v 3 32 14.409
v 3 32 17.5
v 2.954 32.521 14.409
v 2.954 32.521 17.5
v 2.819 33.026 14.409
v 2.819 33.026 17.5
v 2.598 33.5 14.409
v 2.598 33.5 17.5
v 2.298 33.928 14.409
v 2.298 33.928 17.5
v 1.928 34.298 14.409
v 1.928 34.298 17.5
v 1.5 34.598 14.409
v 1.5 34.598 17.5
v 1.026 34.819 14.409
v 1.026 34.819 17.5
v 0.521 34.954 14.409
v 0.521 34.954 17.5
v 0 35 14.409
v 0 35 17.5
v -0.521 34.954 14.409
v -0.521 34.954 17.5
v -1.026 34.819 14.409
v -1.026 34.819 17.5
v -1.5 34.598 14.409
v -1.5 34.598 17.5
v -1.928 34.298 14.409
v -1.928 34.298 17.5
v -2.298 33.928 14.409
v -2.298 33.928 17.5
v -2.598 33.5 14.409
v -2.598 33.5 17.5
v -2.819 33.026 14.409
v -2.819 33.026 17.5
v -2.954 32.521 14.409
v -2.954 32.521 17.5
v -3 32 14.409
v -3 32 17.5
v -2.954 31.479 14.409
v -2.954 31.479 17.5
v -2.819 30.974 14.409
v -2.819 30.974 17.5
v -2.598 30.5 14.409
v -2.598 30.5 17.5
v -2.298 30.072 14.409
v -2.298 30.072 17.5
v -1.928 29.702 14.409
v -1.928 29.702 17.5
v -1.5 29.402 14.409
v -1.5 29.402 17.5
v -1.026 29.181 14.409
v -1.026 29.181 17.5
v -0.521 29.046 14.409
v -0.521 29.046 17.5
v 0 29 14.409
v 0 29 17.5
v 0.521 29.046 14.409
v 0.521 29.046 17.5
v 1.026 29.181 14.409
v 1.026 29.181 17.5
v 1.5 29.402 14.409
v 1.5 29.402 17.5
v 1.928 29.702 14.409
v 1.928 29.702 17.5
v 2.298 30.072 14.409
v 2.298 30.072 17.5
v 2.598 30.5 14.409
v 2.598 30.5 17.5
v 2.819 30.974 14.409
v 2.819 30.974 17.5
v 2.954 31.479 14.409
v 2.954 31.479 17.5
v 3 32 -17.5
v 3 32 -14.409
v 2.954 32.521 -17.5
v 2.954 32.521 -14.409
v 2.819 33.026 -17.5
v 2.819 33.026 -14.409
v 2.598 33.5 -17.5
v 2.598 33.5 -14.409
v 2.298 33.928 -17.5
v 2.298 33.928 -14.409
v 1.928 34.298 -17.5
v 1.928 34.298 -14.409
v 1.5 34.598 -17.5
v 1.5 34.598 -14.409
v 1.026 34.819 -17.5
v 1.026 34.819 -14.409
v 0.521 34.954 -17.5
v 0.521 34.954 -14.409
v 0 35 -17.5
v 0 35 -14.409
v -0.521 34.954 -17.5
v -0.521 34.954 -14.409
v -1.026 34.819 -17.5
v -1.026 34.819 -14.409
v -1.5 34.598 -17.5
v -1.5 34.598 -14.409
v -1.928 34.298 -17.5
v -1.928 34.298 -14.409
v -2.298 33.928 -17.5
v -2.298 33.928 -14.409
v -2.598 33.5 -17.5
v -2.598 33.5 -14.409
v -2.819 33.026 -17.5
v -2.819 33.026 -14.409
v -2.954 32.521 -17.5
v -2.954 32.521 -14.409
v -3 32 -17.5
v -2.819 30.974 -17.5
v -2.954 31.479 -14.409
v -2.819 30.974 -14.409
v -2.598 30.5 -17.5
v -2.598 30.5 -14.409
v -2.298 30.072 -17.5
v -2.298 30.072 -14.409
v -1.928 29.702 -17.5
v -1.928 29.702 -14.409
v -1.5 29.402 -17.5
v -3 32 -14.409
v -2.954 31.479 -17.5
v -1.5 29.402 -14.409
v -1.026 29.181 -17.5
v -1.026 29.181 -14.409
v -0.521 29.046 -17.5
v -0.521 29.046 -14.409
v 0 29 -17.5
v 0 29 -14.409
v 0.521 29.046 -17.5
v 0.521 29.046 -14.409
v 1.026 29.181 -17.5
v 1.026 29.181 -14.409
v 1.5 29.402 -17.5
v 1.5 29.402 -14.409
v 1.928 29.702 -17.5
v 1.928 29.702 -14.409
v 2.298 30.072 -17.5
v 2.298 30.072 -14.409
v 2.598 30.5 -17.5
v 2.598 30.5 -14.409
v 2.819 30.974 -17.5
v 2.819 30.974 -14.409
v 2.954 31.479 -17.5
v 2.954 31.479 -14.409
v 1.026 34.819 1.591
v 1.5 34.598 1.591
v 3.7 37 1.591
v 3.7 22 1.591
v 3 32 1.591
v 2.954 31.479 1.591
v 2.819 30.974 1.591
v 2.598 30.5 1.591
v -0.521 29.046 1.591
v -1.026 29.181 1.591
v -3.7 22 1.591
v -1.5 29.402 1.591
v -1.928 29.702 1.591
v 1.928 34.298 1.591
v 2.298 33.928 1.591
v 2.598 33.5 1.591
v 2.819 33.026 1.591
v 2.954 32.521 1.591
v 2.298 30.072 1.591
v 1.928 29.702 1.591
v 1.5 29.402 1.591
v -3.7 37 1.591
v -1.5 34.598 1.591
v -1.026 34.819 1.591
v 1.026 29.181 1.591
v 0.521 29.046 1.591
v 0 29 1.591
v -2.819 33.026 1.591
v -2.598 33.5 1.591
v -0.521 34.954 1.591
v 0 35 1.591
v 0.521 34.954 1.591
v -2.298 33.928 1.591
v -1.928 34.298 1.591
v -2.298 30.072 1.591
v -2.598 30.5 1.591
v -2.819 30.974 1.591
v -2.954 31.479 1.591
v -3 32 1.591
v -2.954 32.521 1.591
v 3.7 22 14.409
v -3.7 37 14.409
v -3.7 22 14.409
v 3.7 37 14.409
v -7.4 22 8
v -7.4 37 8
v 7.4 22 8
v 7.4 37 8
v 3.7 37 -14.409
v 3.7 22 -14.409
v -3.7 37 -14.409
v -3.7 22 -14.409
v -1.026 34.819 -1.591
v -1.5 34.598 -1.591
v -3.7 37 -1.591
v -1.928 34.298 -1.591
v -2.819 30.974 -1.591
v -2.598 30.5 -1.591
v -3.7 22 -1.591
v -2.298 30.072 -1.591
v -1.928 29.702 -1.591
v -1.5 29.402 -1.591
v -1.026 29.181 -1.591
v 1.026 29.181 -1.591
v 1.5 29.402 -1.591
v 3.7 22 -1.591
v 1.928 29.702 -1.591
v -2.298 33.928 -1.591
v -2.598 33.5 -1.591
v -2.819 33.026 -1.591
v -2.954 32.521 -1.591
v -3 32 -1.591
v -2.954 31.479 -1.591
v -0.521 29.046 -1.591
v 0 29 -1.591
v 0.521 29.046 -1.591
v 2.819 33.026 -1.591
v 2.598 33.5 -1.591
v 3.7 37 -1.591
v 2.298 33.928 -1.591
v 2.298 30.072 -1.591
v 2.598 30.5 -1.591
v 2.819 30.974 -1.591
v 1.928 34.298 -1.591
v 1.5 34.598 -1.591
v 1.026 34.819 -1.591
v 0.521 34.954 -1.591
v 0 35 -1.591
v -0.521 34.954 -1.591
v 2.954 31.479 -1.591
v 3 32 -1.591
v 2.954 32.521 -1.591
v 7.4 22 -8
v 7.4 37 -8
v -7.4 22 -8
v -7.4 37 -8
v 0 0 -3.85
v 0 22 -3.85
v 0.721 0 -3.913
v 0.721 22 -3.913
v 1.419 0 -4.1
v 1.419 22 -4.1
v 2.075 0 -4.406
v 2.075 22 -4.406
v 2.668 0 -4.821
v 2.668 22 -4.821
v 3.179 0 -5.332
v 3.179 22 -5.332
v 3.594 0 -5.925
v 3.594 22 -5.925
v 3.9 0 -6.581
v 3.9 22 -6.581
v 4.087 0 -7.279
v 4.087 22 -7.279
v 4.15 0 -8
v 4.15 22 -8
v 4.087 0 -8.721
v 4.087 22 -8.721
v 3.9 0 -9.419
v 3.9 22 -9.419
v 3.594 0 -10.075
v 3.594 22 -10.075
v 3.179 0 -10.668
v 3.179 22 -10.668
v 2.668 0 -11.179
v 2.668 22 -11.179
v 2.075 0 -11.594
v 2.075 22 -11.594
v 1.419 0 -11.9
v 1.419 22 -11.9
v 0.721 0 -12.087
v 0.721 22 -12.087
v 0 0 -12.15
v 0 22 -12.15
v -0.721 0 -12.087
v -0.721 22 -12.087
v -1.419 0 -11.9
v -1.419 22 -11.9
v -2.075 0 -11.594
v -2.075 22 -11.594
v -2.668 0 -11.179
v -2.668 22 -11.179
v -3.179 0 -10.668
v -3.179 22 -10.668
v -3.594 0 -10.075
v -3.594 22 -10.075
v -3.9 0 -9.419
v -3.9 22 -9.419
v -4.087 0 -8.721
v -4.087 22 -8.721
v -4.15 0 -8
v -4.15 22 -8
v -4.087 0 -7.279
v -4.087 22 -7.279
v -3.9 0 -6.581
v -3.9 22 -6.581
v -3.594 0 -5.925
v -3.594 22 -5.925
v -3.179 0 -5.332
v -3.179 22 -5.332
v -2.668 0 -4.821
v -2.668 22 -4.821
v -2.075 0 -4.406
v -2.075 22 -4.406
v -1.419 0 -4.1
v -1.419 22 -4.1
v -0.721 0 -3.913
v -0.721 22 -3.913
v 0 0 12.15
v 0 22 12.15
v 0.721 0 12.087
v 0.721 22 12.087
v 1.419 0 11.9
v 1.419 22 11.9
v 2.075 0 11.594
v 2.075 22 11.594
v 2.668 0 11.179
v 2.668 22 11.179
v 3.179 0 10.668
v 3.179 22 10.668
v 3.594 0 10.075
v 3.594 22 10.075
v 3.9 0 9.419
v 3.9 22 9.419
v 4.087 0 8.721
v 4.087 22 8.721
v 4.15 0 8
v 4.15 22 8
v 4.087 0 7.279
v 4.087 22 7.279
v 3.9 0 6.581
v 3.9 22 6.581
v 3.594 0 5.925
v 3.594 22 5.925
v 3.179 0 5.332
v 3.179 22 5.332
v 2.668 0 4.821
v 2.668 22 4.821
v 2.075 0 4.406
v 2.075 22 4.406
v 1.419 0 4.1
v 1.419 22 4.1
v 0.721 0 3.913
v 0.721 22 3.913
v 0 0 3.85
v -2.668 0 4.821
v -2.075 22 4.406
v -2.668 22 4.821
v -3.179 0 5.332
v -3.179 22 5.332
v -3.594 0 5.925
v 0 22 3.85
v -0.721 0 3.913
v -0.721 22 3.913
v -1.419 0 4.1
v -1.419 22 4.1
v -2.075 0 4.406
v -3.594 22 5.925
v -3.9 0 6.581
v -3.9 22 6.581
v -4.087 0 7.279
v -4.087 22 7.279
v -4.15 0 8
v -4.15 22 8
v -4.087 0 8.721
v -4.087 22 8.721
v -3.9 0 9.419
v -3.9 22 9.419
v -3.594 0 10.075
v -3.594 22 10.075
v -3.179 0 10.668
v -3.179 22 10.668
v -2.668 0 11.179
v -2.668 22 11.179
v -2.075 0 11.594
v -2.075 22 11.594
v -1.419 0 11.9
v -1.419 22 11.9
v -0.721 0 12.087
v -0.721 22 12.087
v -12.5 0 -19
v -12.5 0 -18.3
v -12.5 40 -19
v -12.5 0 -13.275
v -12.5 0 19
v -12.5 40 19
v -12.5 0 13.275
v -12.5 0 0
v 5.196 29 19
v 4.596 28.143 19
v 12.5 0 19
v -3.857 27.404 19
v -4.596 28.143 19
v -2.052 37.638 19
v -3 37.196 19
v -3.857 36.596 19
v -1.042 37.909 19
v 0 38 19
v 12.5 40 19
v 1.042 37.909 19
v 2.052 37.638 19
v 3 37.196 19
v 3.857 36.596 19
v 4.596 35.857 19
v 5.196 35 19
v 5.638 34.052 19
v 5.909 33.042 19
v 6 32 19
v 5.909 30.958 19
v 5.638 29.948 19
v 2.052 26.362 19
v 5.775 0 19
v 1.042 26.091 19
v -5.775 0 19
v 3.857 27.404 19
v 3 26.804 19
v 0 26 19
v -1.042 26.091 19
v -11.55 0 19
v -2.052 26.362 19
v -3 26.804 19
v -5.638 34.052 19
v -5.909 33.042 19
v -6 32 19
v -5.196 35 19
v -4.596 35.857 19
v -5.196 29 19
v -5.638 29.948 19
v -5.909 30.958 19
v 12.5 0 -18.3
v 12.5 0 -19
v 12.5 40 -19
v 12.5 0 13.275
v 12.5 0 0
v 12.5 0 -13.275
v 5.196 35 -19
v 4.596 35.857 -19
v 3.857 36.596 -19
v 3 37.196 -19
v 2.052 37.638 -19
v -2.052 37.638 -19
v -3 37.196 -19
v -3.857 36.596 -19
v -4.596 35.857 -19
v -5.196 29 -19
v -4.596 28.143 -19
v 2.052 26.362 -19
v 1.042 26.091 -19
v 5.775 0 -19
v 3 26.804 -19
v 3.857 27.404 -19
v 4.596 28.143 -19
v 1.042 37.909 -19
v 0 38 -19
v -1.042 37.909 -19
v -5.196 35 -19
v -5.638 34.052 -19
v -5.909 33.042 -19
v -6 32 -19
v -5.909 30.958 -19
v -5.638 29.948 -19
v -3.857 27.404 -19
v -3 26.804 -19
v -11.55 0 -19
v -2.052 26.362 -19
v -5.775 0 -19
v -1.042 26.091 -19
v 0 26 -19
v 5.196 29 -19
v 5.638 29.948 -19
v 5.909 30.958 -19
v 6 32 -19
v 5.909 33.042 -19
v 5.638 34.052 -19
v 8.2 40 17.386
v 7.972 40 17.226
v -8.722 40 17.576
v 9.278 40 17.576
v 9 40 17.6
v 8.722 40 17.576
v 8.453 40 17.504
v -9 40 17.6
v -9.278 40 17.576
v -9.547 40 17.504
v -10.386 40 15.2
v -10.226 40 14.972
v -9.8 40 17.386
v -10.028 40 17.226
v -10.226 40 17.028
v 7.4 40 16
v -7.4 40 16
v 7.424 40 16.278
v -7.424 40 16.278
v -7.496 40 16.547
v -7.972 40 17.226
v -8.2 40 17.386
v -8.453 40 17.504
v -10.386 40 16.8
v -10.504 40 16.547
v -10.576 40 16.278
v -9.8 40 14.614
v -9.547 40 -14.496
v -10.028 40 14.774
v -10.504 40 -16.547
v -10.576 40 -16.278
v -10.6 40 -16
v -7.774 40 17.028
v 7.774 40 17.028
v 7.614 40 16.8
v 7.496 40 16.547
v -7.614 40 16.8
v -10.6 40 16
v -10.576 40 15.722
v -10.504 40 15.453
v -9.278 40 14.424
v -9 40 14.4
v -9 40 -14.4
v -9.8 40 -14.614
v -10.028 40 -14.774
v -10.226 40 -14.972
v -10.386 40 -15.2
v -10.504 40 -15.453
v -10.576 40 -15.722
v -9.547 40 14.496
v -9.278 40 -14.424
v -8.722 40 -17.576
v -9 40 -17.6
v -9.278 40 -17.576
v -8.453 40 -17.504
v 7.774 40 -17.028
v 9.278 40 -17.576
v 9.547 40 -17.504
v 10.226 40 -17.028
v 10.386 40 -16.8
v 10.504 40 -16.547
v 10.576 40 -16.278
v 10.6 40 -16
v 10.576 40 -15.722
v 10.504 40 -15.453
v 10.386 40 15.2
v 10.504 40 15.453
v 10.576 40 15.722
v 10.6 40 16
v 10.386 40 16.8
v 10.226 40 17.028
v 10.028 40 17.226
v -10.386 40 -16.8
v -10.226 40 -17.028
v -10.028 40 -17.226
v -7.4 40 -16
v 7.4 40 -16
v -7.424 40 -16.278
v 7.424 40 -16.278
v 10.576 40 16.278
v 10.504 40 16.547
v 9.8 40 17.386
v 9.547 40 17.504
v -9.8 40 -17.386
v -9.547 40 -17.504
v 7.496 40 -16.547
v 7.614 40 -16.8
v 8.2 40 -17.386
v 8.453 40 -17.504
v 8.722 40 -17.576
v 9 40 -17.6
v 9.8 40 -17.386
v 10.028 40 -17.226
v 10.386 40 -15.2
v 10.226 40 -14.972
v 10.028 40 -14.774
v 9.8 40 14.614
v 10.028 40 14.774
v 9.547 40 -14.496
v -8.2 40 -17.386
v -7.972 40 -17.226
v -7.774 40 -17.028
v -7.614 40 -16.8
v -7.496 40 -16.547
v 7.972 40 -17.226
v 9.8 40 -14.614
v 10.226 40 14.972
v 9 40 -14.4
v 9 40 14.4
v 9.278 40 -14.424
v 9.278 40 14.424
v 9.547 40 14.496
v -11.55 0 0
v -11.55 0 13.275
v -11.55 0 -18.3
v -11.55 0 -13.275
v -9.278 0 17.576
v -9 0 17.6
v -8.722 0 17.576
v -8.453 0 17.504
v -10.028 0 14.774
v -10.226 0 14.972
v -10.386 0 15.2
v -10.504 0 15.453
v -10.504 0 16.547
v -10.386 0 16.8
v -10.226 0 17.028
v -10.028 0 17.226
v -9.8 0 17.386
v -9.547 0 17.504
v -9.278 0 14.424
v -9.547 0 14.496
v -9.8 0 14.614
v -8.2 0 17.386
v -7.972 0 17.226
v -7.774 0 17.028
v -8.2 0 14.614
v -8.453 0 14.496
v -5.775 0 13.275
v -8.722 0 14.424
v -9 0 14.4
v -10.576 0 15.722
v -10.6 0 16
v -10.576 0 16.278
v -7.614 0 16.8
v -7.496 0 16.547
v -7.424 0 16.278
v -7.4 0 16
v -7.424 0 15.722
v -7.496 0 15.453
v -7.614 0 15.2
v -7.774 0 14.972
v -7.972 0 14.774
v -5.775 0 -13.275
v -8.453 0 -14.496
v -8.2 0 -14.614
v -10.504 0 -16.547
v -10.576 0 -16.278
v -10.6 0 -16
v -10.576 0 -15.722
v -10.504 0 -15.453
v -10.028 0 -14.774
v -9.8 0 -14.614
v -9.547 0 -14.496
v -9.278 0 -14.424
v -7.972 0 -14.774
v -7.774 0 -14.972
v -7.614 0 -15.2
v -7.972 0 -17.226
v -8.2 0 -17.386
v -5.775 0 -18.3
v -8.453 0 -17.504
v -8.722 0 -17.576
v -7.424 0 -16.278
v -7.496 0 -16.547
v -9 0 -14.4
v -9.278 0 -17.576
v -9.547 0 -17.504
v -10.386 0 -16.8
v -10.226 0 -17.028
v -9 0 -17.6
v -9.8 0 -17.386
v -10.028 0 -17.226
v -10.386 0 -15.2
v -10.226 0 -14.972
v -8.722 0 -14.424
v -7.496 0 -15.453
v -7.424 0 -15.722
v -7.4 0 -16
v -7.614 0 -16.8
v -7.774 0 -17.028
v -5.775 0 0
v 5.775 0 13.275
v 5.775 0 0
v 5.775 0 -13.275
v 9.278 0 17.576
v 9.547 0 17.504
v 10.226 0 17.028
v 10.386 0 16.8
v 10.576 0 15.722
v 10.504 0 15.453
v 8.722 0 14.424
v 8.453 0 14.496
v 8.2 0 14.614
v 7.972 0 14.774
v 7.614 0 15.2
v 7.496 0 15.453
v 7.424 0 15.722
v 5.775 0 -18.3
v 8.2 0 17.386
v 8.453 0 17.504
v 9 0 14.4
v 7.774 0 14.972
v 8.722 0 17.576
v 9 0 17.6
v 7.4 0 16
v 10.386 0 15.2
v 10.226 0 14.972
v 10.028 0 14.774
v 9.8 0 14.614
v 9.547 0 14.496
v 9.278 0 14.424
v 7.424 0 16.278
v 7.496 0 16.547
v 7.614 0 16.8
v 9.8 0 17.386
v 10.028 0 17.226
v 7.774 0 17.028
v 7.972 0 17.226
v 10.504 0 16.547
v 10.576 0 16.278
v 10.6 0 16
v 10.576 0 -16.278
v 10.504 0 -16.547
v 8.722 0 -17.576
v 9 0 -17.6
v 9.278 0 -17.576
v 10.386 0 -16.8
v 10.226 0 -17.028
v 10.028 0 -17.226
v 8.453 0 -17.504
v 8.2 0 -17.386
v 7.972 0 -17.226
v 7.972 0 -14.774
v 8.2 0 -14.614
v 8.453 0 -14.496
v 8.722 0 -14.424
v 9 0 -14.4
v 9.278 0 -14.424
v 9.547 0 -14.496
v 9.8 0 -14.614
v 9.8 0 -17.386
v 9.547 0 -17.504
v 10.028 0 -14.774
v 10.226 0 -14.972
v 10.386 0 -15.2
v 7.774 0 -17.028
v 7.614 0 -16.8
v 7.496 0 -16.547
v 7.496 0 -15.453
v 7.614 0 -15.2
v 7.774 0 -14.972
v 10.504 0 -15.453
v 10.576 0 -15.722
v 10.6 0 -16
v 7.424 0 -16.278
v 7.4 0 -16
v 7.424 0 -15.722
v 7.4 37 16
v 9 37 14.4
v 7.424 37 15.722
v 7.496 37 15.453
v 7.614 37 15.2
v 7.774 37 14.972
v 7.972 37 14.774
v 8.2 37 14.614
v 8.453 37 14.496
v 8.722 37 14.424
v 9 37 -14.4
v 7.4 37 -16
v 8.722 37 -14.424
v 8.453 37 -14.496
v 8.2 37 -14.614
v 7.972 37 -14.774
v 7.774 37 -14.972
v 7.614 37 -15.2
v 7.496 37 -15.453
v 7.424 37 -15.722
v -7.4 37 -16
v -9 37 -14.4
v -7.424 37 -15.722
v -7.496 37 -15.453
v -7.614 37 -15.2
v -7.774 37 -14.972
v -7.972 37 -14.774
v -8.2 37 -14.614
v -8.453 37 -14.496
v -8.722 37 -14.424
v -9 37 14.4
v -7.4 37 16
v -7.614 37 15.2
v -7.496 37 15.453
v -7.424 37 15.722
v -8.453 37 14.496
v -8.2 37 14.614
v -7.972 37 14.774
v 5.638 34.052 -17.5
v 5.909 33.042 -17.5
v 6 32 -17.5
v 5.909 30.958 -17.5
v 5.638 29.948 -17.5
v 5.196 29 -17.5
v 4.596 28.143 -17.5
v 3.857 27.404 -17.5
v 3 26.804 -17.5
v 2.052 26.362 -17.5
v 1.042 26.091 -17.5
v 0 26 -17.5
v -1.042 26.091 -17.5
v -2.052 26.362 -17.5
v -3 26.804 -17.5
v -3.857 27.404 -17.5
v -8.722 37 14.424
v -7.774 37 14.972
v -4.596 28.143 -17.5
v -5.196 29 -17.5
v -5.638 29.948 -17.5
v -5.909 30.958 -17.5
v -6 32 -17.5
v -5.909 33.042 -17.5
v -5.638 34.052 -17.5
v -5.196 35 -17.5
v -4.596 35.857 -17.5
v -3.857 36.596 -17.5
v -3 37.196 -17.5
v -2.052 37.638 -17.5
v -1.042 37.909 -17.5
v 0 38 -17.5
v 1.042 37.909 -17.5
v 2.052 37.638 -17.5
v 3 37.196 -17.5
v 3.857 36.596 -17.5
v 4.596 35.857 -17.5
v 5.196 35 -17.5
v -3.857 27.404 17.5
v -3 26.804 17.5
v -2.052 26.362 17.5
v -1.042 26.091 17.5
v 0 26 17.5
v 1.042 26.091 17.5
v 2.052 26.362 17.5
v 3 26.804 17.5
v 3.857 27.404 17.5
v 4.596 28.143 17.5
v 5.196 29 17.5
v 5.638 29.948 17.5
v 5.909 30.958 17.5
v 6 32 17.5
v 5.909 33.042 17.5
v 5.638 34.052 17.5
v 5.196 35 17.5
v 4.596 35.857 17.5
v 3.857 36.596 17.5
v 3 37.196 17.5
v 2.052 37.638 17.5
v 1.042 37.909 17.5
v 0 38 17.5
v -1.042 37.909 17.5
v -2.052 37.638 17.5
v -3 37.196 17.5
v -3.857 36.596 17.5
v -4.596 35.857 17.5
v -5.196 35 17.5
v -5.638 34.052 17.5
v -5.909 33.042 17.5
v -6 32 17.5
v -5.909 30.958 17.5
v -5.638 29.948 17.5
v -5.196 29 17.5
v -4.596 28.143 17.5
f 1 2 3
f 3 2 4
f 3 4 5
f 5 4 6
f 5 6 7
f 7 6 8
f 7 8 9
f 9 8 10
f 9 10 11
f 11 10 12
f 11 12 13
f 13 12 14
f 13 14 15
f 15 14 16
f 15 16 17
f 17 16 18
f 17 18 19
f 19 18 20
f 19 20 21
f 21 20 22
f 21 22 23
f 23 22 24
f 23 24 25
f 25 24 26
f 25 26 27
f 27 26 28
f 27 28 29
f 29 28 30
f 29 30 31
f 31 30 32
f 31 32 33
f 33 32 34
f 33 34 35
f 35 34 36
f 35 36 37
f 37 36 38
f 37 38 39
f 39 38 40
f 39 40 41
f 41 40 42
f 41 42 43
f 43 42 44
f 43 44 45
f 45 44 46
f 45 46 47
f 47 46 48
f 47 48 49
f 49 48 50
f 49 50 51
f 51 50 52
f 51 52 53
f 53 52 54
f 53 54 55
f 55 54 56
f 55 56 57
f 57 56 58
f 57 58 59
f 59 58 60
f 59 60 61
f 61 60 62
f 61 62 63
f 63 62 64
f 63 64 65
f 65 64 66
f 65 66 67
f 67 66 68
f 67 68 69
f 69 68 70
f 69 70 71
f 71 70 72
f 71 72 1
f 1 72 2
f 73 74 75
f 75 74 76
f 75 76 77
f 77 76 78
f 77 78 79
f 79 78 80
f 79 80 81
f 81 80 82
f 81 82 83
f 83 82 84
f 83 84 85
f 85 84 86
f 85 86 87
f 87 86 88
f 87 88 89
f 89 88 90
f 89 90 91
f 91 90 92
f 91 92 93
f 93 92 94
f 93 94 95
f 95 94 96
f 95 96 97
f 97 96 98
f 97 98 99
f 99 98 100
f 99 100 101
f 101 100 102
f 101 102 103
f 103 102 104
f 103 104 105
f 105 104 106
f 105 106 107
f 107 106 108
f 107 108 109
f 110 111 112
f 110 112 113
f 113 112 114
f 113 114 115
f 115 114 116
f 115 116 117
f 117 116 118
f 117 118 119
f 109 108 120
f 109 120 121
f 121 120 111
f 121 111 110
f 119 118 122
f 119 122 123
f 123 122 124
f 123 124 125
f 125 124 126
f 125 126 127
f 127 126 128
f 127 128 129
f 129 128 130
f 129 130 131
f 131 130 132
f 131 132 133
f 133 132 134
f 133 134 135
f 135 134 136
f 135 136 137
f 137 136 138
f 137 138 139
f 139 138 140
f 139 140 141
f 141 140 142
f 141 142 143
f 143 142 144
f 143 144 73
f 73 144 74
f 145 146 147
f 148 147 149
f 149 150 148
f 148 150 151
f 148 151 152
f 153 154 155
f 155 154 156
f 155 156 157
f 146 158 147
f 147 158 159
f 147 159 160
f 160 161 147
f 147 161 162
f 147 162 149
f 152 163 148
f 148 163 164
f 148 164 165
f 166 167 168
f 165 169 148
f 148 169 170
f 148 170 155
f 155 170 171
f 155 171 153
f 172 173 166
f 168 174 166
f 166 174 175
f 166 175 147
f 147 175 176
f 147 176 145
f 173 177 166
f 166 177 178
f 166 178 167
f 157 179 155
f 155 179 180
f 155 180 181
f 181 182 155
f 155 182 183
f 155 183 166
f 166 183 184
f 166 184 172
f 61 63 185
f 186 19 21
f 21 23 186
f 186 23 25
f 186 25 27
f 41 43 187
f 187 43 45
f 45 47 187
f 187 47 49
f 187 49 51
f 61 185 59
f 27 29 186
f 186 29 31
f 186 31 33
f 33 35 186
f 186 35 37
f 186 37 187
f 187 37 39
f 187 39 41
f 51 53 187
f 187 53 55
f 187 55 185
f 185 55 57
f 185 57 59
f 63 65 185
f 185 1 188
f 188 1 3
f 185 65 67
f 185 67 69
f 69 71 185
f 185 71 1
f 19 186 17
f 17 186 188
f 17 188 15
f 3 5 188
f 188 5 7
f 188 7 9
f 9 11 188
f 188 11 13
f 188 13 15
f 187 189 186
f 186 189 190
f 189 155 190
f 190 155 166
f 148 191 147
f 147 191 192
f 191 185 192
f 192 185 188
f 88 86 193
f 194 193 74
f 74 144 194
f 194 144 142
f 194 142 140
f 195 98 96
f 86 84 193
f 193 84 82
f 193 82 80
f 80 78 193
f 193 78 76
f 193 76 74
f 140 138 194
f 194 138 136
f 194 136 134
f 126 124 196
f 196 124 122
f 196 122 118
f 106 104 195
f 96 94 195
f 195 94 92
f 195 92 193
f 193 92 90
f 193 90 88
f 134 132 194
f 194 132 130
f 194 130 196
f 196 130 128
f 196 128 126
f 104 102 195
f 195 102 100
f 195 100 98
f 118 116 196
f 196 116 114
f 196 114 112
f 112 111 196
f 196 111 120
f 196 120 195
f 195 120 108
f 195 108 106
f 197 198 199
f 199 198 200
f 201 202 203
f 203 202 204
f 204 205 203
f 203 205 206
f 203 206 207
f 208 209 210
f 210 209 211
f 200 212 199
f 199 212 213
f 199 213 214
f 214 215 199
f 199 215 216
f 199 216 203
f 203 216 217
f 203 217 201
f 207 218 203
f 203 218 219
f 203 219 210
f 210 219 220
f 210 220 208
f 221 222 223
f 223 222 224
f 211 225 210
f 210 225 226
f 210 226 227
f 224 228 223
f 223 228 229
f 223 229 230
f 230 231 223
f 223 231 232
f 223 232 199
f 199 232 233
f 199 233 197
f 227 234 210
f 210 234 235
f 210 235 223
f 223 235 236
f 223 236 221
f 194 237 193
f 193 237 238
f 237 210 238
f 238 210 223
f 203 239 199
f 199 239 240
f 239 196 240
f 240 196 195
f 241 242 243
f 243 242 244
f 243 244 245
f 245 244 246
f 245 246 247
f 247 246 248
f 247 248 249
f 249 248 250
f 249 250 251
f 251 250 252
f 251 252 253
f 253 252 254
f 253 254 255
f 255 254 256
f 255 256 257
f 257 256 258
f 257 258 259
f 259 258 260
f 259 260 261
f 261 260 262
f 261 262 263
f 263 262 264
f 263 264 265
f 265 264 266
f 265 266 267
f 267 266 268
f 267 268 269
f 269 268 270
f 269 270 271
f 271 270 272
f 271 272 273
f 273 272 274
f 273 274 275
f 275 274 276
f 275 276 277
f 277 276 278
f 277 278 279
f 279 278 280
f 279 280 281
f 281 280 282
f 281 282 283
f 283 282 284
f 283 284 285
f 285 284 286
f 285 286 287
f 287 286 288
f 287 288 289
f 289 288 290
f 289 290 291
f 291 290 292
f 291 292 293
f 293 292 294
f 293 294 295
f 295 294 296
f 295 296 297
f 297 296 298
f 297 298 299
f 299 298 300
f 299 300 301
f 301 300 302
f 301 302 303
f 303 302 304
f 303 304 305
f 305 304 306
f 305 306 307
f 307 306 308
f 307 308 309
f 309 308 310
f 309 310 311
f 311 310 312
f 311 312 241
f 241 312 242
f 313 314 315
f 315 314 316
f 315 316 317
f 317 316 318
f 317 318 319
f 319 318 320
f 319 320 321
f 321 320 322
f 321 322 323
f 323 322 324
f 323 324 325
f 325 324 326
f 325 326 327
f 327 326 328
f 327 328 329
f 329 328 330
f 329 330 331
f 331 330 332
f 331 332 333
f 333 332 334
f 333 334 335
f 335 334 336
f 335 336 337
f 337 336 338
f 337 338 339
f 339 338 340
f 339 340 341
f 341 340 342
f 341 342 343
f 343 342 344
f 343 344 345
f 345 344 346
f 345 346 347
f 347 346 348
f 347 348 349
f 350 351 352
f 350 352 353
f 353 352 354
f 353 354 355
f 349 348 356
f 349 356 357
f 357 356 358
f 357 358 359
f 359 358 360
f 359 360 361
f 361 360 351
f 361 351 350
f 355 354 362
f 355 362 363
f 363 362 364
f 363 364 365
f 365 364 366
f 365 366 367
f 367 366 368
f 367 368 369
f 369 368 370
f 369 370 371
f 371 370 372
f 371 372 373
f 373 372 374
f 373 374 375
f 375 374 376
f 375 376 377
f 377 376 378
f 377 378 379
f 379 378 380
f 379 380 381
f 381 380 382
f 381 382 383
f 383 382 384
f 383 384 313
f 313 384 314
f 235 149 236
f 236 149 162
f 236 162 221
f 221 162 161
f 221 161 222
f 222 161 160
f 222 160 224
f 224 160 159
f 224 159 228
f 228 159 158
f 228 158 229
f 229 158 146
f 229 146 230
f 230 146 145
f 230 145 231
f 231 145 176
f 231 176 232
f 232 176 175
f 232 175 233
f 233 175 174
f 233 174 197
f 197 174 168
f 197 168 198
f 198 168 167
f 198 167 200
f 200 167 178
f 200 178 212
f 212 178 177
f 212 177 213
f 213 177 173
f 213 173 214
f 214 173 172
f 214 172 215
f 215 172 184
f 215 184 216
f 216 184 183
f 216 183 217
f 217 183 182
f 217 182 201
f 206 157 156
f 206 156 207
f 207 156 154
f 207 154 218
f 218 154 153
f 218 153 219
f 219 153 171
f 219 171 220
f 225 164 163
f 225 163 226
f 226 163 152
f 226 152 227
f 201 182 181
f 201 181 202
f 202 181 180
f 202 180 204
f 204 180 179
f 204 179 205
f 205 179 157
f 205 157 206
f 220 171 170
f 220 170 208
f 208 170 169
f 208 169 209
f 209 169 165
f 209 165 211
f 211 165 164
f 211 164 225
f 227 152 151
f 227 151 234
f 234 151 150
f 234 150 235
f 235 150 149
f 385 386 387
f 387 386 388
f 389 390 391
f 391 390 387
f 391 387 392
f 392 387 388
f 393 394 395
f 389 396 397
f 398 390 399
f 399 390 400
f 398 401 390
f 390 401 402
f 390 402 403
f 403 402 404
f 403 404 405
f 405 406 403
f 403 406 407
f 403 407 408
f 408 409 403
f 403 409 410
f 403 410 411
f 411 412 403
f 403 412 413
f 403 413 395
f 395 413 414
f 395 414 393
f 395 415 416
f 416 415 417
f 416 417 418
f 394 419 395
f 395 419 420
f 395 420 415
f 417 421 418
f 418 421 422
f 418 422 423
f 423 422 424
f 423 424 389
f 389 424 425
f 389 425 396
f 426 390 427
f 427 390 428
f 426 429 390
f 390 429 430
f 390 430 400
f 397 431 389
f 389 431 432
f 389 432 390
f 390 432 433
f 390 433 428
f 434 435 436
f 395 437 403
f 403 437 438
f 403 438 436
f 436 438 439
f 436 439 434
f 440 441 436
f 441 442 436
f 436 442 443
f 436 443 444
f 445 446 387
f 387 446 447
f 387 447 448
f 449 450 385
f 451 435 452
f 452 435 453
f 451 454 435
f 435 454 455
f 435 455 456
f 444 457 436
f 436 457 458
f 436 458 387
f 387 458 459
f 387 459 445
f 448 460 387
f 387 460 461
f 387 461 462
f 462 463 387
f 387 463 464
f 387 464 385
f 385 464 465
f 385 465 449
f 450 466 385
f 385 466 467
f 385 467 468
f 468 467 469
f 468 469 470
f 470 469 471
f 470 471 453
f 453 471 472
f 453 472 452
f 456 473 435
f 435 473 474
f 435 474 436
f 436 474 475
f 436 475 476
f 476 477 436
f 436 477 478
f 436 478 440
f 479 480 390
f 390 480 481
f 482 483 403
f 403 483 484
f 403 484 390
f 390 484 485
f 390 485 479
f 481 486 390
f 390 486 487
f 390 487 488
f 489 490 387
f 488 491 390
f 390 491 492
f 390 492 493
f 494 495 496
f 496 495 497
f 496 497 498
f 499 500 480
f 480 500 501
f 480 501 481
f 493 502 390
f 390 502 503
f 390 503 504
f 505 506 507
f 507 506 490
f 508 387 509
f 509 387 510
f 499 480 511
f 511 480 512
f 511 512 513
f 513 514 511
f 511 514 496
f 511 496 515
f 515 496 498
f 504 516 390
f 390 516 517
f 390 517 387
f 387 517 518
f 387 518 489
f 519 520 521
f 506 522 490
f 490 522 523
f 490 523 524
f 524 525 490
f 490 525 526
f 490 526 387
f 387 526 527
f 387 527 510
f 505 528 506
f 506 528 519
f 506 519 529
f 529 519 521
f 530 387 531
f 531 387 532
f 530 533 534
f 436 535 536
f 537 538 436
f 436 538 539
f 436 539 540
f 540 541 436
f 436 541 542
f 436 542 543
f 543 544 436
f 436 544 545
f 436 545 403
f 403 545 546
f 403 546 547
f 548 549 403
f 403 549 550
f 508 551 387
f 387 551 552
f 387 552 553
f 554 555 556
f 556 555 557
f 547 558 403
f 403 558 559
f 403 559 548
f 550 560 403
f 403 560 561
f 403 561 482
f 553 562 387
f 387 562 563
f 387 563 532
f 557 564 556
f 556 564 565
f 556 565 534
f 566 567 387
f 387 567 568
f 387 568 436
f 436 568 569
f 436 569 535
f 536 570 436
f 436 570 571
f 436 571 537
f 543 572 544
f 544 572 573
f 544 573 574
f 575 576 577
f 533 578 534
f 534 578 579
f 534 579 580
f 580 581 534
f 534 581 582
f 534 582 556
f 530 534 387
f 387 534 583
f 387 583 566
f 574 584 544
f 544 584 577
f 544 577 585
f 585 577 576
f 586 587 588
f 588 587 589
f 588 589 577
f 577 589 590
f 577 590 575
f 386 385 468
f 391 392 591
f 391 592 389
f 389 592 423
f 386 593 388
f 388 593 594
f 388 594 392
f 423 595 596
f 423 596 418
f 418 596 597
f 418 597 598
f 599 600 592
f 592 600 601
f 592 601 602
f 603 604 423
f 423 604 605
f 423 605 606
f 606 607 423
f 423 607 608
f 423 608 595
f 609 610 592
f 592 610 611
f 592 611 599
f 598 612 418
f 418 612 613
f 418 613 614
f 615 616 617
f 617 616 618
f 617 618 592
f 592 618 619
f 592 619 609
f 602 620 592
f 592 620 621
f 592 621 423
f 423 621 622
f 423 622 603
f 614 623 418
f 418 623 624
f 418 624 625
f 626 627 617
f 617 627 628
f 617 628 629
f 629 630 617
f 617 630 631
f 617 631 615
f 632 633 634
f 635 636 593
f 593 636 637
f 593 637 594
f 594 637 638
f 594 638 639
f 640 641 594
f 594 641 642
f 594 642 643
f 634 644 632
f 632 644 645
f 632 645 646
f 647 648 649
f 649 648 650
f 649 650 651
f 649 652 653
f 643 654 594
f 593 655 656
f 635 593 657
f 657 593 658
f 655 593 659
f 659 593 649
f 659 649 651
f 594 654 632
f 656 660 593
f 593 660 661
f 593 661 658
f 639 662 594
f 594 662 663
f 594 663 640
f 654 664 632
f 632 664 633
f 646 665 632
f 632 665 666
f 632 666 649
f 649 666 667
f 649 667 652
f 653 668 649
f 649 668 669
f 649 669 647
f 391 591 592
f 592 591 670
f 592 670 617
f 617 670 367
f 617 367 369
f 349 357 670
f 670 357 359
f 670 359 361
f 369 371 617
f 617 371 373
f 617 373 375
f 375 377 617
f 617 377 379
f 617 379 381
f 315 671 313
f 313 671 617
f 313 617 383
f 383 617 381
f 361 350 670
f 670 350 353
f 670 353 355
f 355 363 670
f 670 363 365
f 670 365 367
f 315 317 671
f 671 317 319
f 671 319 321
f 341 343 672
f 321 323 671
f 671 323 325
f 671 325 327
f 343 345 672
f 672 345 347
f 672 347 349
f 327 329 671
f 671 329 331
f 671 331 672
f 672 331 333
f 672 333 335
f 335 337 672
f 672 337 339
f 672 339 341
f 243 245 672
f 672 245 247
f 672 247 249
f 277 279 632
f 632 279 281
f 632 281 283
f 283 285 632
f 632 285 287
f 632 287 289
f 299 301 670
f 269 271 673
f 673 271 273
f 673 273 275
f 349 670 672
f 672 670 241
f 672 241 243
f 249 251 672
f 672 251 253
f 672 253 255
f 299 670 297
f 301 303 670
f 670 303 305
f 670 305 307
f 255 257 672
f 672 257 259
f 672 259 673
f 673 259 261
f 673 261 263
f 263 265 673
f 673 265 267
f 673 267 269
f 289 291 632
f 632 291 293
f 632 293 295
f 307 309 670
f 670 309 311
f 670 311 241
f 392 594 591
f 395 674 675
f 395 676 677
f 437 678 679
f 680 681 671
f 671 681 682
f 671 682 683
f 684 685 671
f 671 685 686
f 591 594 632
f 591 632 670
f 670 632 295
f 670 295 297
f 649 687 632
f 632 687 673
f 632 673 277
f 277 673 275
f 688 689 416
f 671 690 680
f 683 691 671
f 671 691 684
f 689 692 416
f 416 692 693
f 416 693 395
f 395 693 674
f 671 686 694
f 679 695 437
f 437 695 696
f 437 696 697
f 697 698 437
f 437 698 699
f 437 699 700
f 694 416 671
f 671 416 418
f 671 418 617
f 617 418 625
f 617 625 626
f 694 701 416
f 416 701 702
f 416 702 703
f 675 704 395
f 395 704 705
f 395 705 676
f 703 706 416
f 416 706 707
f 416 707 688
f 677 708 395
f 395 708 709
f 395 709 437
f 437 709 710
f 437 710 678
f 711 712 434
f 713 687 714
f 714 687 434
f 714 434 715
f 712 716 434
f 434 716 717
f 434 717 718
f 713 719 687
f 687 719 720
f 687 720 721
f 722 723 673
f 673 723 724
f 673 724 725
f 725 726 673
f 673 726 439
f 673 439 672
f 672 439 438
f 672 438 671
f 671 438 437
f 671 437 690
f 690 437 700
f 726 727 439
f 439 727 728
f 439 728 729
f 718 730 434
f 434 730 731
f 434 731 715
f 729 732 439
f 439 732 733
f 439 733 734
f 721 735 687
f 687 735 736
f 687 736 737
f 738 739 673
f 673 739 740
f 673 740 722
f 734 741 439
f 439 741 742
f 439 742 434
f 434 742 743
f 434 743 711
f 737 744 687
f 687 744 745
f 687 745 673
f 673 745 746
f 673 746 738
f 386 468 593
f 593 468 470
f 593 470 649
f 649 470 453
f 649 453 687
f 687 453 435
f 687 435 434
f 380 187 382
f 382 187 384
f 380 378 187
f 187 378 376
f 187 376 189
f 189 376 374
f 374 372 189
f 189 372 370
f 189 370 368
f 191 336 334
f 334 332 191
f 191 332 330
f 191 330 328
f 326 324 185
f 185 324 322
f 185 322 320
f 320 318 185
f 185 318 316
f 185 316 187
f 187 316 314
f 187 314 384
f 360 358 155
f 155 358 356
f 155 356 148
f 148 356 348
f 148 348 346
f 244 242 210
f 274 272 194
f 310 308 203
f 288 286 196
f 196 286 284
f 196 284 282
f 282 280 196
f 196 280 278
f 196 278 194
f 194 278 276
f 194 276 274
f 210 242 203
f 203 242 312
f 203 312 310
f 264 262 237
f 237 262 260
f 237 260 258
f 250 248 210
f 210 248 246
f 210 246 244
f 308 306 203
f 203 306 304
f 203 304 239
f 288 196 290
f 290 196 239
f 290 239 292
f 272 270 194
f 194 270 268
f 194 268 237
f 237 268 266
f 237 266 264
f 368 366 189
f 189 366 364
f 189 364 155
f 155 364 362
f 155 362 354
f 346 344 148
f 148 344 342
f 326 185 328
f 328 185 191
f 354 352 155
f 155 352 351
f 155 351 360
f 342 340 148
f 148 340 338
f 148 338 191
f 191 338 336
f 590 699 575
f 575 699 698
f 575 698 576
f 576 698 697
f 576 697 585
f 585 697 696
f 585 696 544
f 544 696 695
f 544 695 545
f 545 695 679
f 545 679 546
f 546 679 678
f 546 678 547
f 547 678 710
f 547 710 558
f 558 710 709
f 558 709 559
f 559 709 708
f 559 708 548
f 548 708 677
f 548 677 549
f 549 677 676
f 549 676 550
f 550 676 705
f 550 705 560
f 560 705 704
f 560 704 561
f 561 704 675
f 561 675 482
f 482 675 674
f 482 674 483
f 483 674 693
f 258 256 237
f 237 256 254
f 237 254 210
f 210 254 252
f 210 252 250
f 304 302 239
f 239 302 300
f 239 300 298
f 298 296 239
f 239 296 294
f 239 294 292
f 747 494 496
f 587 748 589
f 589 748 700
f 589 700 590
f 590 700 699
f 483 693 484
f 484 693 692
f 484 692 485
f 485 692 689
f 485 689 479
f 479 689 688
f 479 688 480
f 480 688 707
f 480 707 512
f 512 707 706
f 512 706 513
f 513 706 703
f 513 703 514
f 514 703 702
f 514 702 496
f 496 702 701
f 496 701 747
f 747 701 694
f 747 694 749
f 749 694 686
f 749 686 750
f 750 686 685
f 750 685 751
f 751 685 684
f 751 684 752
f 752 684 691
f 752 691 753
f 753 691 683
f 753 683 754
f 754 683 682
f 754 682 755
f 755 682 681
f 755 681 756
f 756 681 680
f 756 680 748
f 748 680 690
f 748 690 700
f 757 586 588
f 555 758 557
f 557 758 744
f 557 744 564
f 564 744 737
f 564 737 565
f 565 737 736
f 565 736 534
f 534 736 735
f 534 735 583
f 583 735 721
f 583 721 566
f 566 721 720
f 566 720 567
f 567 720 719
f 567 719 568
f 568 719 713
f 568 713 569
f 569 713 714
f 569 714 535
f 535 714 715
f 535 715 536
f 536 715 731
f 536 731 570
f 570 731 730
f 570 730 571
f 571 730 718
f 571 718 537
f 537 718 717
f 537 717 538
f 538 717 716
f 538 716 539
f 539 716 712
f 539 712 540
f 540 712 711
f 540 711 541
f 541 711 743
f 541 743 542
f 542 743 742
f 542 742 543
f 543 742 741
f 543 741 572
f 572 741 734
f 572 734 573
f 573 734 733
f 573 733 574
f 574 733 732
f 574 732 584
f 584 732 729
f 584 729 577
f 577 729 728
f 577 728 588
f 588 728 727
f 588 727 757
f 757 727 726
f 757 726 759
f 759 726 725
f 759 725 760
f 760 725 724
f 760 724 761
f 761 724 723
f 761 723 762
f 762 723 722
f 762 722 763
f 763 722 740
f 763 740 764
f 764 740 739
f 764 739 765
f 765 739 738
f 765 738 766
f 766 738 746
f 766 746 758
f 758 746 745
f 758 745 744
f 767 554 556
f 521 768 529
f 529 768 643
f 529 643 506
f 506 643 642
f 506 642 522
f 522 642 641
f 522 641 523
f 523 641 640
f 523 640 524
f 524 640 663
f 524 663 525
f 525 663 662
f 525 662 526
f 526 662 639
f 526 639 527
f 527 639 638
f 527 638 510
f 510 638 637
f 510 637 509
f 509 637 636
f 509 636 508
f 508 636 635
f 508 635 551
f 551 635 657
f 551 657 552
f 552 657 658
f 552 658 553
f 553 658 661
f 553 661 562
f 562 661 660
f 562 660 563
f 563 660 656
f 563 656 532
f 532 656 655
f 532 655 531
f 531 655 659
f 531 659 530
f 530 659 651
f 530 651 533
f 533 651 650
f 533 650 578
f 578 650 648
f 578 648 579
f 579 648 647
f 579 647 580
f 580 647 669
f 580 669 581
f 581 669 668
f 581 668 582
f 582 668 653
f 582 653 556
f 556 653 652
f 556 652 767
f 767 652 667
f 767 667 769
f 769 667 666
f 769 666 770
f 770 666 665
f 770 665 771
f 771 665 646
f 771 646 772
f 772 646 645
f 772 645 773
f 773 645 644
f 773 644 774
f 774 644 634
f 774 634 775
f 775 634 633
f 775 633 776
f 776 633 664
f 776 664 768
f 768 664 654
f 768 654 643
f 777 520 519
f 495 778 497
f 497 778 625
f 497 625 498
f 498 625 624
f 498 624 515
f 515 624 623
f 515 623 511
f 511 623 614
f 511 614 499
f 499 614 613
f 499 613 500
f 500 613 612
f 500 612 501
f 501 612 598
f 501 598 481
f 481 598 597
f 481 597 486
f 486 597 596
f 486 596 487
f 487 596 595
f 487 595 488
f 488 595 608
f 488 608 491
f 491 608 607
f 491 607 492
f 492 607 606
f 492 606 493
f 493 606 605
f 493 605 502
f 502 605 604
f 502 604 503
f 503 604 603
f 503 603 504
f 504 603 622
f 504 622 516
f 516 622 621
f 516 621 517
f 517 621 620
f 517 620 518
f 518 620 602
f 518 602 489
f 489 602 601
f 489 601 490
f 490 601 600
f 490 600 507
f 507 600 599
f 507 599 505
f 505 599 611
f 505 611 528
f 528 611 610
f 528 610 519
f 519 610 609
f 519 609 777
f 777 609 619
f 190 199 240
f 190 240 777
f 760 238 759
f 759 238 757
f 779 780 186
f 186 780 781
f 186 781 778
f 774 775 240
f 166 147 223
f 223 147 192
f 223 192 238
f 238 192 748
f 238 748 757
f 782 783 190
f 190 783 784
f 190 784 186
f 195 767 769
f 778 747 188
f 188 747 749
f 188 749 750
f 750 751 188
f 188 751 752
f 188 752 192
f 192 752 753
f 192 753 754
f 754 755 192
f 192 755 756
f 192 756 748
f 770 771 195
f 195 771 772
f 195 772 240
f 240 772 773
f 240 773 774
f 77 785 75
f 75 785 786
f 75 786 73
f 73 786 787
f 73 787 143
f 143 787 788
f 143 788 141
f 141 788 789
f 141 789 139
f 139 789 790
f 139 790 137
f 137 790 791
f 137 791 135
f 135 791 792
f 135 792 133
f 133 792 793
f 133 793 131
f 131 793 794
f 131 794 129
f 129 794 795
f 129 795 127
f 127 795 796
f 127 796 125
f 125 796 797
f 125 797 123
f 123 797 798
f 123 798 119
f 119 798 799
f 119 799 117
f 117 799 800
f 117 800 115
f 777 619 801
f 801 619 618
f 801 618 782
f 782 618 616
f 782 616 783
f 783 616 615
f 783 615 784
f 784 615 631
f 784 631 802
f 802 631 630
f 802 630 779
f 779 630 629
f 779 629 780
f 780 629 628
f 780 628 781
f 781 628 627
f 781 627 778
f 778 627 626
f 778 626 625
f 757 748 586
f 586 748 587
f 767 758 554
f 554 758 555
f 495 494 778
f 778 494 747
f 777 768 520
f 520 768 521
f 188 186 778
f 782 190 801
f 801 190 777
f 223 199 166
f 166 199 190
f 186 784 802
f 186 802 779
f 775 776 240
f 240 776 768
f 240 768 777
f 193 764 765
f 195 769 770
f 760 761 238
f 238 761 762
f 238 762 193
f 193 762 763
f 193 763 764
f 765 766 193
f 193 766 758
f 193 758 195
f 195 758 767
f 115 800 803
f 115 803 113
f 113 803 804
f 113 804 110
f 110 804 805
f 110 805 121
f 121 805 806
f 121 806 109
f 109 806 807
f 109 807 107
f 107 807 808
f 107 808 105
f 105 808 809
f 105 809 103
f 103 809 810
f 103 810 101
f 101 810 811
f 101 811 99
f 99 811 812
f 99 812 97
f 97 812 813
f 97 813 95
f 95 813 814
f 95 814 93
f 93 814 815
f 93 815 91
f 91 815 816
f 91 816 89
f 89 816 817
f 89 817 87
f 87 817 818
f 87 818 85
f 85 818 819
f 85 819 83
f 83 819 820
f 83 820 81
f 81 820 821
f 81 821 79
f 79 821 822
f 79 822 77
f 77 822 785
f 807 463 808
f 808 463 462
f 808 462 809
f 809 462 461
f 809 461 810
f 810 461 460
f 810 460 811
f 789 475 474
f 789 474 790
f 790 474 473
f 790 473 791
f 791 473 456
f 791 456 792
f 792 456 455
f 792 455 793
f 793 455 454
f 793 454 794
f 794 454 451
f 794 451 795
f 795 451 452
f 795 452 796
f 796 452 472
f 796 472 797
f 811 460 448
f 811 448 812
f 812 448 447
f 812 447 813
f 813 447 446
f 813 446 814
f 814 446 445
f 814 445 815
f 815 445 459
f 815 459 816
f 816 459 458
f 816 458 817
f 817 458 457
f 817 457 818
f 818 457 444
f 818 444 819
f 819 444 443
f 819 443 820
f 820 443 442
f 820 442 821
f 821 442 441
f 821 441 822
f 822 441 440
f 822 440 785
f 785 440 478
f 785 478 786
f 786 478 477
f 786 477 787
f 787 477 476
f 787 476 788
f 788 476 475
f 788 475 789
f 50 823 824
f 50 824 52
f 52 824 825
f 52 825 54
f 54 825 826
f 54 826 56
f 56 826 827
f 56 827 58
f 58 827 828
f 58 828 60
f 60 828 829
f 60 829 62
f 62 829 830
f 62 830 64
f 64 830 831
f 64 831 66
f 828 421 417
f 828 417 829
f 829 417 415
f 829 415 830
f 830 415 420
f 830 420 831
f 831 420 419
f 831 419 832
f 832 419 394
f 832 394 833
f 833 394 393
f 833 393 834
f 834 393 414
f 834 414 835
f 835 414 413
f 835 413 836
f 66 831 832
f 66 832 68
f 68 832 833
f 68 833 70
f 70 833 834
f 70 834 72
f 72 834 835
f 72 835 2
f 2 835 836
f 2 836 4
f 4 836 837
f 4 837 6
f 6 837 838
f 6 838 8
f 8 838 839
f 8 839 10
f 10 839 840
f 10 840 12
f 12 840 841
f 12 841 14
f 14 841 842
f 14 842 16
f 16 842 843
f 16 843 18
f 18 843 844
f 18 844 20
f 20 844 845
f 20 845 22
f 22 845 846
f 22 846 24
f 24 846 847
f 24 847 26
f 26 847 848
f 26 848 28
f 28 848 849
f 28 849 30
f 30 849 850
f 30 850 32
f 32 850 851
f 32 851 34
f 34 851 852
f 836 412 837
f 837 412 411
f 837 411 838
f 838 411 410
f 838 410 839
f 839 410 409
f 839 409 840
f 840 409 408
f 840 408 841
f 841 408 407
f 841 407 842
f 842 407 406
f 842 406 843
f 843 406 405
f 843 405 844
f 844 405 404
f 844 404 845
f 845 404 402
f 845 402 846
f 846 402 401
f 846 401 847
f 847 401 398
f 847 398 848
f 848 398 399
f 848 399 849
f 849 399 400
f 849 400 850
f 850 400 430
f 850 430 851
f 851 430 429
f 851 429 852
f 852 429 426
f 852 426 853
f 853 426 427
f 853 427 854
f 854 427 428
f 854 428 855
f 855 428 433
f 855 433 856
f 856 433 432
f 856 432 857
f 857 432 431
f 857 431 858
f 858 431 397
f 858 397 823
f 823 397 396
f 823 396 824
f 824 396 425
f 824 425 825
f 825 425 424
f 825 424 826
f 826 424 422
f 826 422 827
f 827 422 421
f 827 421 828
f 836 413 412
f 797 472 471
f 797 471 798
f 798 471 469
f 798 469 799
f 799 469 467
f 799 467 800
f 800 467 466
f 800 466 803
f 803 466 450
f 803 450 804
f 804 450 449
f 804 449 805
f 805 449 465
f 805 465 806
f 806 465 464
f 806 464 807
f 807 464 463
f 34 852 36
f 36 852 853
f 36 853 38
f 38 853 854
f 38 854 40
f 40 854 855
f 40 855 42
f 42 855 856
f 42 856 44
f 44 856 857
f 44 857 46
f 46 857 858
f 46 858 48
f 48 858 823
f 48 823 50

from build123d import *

# Parameters (mm, degrees)
SKETCH1_W           = 25
SKETCH1_H           = 38
BOSS_EXTRUDE1_DEPTH = 40
SKETCH2_R           = 3
CUT_EXTRUDE1_DEPTH  = 39
SKETCH4_R           = 4.15
CUT_EXTRUDE2_DEPTH  = 41
CUT_EXTRUDE3_DEPTH  = 18
SKETCH6_R           = 1.6
CUT_EXTRUDE4_DEPTH  = 41
SKETCH7_W           = 18
SKETCH7_H           = 32
CUT_EXTRUDE5_DEPTH  = 3
SKETCH9_R           = 6
CUT_EXTRUDE6_DEPTH  = 1.5
SKETCH10_R          = 6
CUT_EXTRUDE7_DEPTH  = 1.5


with BuildPart() as part:
    # Sketch1 → Boss-Extrude1 (new body)
    with BuildSketch(Plane(origin=(0, 0, 0), x_dir=(1, 0, 0), z_dir=(0, 1, 0))):
        Rectangle(SKETCH1_W, SKETCH1_H)
    extrude(amount=BOSS_EXTRUDE1_DEPTH)

    # Sketch2 → Cut-Extrude1 (cut, through all)
    with BuildSketch(Plane.XY.offset(19)):
        with Locations((0, 32)):
            Circle(SKETCH2_R)
    extrude(amount=-CUT_EXTRUDE1_DEPTH, mode=Mode.SUBTRACT)

    # Sketch4 → Cut-Extrude2 (cut, through all)
    with BuildSketch(Plane(origin=(0, 40, 0), x_dir=(1, 0, 0), z_dir=(0, 1, 0))):
        with Locations((0, -8)):
            Circle(SKETCH4_R)
        with Locations((0, 8)):
            Circle(SKETCH4_R)
    extrude(amount=-CUT_EXTRUDE2_DEPTH, mode=Mode.SUBTRACT)

    # Sketch5 → Cut-Extrude3 (cut)
    with BuildSketch(Plane(origin=(0, 40, 0), x_dir=(1, 0, 0), z_dir=(0, 1, 0))):
        Polygon((-3.7, -14.408587988), (3.7, -14.408587988), (7.4, -8), (3.7, -1.591412012), (-3.7, -1.591412012), (-7.4, -8), align=None)
        Polygon((-3.7, 14.408587988), (-7.4, 8), (-3.7, 1.591412012), (3.7, 1.591412012), (7.4, 8), (3.7, 14.408587988), align=None)
    extrude(amount=-CUT_EXTRUDE3_DEPTH, mode=Mode.SUBTRACT)

    # Sketch6 → Cut-Extrude4 (cut, through all)
    with BuildSketch(Plane(origin=(0, 40, 0), x_dir=(1, 0, 0), z_dir=(0, 1, 0))):
        with Locations((9, -16)):
            Circle(SKETCH6_R)
        with Locations((-9, -16)):
            Circle(SKETCH6_R)
        with Locations((-9, 16)):
            Circle(SKETCH6_R)
        with Locations((9, 16)):
            Circle(SKETCH6_R)
    extrude(amount=-CUT_EXTRUDE4_DEPTH, mode=Mode.SUBTRACT)

    # Sketch7 → Cut-Extrude5 (cut)
    with BuildSketch(Plane(origin=(0, 40, 0), x_dir=(1, 0, 0), z_dir=(0, 1, 0))):
        Rectangle(SKETCH7_W, SKETCH7_H)
    extrude(amount=-CUT_EXTRUDE5_DEPTH, mode=Mode.SUBTRACT)

    # Sketch9 → Cut-Extrude6 (cut)
    with BuildSketch(Plane(origin=(0, 0, -19), x_dir=(-1, 0, 0), z_dir=(0, 0, -1))):
        with Locations((0, 32)):
            Circle(SKETCH9_R)
    extrude(amount=-CUT_EXTRUDE6_DEPTH, mode=Mode.SUBTRACT)

    # Sketch10 → Cut-Extrude7 (cut)
    with BuildSketch(Plane.XY.offset(19)):
        with Locations((0, 32)):
            Circle(SKETCH10_R)
    extrude(amount=-CUT_EXTRUDE7_DEPTH, mode=Mode.SUBTRACT)


solid = part.part
